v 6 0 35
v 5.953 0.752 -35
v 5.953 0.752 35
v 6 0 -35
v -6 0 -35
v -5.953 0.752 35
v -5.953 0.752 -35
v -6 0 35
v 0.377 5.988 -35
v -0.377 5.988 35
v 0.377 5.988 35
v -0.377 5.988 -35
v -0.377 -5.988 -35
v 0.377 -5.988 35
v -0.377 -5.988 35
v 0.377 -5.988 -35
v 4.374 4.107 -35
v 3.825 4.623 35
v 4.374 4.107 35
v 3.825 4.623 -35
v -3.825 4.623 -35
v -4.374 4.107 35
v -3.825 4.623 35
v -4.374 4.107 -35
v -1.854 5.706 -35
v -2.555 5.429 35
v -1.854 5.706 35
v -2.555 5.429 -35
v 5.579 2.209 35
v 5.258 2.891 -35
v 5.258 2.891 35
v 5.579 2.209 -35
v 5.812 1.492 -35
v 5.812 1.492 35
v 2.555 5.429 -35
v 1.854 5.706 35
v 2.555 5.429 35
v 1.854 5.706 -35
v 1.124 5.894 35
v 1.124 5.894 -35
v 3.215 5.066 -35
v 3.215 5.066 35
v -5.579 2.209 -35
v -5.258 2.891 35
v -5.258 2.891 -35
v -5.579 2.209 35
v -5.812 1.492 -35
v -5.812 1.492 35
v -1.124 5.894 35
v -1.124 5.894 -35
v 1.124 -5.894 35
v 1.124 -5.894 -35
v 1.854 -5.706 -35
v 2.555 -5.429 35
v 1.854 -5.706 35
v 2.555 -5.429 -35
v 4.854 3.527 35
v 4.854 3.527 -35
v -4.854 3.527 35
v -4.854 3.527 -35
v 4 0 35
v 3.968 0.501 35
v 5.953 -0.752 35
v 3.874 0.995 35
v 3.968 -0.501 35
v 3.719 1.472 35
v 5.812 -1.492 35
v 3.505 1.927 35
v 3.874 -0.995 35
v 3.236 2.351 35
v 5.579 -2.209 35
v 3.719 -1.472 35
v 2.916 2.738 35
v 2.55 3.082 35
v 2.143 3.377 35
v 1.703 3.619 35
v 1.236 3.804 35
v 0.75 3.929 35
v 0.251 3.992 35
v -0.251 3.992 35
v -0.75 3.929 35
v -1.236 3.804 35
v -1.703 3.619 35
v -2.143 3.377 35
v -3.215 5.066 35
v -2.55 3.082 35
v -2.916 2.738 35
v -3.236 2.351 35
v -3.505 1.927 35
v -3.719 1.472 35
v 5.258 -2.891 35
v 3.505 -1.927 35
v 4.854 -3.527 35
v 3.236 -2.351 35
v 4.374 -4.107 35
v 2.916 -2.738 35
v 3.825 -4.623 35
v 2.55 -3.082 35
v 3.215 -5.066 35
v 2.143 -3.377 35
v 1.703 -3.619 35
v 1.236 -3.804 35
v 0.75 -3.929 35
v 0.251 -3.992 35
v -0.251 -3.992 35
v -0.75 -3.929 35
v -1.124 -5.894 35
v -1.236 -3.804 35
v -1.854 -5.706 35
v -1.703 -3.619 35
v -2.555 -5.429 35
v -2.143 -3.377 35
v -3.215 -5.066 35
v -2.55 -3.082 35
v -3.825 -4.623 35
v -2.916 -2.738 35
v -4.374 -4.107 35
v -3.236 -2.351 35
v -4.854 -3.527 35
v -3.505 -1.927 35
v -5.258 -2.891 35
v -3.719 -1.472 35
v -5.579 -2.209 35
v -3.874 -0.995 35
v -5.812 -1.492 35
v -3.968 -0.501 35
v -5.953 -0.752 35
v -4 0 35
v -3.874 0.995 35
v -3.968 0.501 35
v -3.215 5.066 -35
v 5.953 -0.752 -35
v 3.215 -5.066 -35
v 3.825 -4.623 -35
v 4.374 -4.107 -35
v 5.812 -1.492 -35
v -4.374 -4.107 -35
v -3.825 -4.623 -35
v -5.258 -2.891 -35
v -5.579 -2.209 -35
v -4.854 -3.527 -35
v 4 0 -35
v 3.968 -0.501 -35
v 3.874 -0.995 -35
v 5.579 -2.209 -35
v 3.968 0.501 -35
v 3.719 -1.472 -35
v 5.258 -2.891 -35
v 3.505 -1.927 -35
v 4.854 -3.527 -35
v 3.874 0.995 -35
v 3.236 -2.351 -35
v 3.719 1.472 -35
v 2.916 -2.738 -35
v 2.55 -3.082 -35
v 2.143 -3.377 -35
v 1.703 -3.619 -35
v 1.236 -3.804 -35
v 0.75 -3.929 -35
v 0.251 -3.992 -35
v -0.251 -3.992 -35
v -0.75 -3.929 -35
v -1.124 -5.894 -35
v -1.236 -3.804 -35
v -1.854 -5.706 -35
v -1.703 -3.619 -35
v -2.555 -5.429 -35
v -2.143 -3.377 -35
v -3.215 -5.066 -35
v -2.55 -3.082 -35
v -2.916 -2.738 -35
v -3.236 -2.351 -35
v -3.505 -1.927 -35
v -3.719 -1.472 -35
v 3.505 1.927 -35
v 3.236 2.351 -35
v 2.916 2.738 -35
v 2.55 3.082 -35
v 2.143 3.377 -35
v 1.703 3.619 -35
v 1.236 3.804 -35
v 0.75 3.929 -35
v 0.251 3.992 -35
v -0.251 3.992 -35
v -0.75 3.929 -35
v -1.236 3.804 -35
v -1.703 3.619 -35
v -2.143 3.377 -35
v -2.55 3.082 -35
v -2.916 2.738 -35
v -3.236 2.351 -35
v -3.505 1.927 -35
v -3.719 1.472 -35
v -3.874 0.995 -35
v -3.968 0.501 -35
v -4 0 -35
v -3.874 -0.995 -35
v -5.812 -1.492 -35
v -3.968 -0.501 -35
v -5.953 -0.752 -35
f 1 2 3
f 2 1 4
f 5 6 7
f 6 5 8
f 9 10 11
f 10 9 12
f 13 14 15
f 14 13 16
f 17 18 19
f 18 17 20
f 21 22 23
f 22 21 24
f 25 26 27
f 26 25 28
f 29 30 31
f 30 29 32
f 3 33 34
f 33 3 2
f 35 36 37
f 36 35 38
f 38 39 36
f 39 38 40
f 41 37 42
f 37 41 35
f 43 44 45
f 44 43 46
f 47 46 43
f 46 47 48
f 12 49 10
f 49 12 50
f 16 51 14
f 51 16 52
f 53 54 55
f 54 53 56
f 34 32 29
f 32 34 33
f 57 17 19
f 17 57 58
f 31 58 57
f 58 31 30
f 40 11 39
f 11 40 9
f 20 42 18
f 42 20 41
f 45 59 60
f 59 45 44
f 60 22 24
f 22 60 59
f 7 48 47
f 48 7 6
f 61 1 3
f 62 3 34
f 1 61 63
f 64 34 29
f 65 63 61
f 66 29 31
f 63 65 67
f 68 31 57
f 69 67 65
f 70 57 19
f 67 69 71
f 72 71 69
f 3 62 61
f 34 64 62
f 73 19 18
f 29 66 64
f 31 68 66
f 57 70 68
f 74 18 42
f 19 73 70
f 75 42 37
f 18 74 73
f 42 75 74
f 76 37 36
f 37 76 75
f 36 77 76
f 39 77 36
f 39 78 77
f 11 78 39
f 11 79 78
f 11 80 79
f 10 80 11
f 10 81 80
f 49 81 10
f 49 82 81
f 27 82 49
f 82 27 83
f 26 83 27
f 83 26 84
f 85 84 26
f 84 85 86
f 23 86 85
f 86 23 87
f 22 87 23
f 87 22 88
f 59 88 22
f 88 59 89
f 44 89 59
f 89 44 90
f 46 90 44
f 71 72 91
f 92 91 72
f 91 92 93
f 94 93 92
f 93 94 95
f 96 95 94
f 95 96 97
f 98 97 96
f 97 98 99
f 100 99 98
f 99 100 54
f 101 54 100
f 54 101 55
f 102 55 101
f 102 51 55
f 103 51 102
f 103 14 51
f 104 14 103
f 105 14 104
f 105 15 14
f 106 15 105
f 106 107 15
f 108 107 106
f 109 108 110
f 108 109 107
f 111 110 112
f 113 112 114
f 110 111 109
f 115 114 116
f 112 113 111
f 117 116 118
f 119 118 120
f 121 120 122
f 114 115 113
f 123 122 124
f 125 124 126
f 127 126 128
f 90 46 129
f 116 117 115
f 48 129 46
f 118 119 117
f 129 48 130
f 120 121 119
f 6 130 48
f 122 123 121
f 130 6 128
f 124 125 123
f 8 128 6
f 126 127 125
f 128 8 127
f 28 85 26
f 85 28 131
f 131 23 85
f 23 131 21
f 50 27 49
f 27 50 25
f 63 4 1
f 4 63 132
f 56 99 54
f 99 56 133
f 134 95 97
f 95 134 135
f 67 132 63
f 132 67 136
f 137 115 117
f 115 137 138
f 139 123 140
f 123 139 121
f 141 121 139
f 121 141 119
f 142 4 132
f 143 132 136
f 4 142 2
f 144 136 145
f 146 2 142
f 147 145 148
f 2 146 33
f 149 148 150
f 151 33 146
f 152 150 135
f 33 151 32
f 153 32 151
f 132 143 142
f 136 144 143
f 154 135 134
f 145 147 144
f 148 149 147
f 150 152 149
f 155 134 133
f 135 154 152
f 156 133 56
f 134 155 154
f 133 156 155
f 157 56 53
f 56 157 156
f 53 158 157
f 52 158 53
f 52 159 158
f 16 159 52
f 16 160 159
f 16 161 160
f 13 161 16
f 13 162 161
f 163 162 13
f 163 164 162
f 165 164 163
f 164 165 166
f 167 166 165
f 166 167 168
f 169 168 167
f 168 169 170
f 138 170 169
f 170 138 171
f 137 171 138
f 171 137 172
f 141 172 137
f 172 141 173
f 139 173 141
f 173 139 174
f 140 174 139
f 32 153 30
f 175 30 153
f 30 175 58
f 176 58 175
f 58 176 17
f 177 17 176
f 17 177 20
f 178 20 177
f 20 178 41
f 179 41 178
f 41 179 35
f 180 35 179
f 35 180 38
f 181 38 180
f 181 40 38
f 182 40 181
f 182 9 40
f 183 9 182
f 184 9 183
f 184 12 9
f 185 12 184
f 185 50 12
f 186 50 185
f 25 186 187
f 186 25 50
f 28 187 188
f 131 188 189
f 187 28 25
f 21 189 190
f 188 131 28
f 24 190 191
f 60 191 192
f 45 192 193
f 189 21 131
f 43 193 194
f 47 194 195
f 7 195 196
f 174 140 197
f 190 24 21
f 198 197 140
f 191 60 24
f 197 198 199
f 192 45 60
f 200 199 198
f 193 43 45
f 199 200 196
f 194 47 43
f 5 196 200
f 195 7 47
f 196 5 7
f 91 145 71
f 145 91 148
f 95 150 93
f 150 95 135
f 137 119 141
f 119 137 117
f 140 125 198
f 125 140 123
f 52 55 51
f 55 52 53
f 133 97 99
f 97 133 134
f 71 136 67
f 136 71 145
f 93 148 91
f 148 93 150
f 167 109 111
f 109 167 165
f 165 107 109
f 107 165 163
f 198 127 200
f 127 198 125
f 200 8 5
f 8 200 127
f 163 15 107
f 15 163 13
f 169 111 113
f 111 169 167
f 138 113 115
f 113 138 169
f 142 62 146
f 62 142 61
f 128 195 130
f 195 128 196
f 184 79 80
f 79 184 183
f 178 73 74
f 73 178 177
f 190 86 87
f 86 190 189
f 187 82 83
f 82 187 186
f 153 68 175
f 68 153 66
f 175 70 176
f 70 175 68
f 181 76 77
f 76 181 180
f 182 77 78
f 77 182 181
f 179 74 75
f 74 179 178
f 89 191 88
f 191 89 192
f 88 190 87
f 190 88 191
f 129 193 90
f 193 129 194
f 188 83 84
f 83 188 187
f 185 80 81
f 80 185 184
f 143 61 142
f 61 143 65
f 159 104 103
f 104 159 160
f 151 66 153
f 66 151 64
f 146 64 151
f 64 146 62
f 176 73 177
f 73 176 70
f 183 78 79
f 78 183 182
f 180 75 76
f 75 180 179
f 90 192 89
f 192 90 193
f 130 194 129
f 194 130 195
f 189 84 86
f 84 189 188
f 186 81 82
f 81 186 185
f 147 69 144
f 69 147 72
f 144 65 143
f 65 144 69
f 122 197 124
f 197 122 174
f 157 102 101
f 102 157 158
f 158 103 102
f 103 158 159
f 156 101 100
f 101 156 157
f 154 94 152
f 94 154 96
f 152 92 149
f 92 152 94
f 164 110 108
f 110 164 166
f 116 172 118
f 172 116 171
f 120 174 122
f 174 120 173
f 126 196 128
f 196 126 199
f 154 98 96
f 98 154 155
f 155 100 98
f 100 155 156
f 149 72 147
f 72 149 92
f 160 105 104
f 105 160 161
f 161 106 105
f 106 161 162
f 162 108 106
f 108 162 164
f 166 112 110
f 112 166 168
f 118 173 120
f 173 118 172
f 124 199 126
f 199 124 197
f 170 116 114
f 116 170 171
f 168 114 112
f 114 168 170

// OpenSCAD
$fn = 50;


difference() {
	union() {
		translate(v = [0, 0, -35.0000000000]) {
			cylinder(h = 70, r = 6.0000000000);
		}
	}
	union() {
		translate(v = [0, 0, -100.0000000000]) {
			cylinder(h = 200, r = 4);
		}
	}
}
